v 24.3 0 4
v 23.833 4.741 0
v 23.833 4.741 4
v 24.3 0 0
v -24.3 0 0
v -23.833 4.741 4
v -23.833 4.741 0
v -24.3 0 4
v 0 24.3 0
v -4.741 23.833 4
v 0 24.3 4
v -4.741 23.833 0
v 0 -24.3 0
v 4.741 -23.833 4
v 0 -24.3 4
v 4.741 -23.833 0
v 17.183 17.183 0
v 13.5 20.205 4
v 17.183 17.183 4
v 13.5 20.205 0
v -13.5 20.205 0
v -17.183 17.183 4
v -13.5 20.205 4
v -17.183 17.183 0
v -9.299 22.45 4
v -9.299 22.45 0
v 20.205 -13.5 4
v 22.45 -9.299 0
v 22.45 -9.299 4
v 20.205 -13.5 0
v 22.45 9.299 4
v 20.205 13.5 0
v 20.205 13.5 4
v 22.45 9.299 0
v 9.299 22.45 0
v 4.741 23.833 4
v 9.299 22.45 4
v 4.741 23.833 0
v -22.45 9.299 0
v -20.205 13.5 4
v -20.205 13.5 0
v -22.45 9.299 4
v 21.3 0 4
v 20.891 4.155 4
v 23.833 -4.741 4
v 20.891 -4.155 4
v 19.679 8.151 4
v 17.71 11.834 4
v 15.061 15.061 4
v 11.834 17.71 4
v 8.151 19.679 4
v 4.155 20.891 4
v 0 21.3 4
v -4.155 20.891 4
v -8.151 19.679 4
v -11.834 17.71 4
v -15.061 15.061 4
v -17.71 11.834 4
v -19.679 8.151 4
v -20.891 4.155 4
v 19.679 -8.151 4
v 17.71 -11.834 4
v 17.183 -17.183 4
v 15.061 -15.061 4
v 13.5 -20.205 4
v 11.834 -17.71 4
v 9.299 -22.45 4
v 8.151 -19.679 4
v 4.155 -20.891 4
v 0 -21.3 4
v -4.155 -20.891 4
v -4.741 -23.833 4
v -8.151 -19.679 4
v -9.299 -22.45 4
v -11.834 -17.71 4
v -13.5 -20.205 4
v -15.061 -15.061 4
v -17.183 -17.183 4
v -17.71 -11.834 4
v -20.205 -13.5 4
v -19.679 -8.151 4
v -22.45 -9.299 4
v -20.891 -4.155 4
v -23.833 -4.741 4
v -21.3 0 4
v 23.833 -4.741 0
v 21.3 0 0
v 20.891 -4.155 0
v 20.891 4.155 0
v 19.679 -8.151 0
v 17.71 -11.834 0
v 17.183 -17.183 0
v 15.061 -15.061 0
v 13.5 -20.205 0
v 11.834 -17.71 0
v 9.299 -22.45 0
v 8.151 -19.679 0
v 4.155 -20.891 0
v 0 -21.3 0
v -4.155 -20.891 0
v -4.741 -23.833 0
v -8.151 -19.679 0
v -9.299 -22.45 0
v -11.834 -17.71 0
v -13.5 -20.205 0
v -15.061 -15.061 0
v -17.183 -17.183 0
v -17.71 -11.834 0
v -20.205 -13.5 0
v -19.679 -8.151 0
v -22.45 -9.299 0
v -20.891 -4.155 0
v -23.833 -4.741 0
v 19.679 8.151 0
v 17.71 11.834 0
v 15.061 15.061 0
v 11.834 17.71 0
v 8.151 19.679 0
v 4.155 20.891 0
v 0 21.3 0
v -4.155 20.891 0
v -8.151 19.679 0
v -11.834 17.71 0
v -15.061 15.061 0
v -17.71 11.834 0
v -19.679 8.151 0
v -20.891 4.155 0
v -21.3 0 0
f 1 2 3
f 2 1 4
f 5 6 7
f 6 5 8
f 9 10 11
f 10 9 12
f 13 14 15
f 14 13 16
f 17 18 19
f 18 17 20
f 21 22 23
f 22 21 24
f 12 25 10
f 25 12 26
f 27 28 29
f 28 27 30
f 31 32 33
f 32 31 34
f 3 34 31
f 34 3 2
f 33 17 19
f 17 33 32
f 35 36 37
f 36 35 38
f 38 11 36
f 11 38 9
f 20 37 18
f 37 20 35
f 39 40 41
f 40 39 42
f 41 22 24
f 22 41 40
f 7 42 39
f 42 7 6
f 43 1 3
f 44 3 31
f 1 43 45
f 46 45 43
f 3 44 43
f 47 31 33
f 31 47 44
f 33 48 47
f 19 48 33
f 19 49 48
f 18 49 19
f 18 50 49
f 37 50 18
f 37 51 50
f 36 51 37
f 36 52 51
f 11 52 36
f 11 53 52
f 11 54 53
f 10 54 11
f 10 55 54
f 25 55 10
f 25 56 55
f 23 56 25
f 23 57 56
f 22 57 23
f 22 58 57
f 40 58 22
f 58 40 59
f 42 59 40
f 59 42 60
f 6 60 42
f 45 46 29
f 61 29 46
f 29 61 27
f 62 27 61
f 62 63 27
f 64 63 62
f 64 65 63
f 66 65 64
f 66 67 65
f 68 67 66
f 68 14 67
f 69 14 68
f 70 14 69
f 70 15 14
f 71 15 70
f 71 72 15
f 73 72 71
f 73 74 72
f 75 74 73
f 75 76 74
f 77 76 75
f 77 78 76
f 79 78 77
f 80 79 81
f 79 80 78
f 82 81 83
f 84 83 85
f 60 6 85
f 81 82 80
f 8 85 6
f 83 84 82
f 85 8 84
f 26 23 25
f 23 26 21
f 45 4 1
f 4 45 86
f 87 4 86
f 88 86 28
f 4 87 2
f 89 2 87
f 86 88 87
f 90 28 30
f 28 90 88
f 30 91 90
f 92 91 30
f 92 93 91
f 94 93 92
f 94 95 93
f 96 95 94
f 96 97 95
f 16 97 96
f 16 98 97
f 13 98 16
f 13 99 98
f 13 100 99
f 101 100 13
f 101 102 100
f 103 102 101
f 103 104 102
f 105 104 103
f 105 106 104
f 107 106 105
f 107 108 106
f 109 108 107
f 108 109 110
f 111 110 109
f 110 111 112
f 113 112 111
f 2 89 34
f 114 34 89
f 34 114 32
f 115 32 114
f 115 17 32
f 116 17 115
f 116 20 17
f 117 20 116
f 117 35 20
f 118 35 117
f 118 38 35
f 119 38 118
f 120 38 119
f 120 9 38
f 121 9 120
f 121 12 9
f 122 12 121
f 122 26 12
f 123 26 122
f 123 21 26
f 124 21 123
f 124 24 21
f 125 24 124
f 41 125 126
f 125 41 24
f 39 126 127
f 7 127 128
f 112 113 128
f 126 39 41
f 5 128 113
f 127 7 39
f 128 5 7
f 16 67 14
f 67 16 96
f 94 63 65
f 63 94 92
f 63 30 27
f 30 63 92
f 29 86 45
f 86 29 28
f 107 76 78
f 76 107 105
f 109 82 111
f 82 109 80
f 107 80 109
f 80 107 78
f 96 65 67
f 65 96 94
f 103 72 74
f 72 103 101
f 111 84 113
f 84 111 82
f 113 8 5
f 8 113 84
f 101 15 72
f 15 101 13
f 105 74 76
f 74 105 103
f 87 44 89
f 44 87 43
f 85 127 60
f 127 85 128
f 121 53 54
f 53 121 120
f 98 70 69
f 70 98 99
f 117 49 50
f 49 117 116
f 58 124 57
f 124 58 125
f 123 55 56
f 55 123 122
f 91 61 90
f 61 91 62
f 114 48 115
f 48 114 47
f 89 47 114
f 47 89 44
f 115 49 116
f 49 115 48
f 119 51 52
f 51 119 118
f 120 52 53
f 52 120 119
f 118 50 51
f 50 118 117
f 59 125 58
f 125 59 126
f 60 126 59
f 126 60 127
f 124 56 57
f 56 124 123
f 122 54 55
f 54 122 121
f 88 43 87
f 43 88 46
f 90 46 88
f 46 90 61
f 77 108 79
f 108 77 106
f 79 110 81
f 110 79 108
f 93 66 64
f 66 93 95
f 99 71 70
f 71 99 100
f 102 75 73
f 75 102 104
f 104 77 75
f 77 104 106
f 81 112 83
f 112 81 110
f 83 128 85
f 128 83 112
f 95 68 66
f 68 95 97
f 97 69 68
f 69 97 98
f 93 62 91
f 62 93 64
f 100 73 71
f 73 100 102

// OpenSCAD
// file: ../build-stamp.scad
// AUTO-GENERATED by scripts/Export-OpenScadStl.ps1 - do not edit by hand
// Source: build-config.json

info_stamp_line1 = "Verminology";
info_stamp_line2 = "Liquid Bait Station";
info_stamp_line3 = "v2.8.1 Prototype";
needle_seal_stamp_bottom = false;
seal_ring_stamp_bottom = false;
reservoir_stamp_bottom = true;
station_stamp_bottom = true;
stopper_stamp_bottom = false;
grip_stamp_bottom = false;
anvil_stamp_bottom = false;
// main file
// Seal Ring for V2 Liquid Bait Station — Print in TPU 90A
// Flat annular disk that press-fits into a groove on the reservoir
// bottom face.  When assembled, compresses against the outer bait
// barrier wall top edge to seal dry side from wet feeding area.
//
// Orientation: z = 0 at bottom face (barrier contact); top into groove.

include <common.scad>

module seal_ring() {
    difference() {
        cylinder(h = seal_ring_h, d = seal_ring_od);
        translate([0, 0, -0.01])
            cylinder(h = seal_ring_h + 0.02, d = seal_ring_id);
    }
}

// ── Render ────────────────────────────────────────────────────────
crosssection(seal_ring_od + 4) seal_ring();
